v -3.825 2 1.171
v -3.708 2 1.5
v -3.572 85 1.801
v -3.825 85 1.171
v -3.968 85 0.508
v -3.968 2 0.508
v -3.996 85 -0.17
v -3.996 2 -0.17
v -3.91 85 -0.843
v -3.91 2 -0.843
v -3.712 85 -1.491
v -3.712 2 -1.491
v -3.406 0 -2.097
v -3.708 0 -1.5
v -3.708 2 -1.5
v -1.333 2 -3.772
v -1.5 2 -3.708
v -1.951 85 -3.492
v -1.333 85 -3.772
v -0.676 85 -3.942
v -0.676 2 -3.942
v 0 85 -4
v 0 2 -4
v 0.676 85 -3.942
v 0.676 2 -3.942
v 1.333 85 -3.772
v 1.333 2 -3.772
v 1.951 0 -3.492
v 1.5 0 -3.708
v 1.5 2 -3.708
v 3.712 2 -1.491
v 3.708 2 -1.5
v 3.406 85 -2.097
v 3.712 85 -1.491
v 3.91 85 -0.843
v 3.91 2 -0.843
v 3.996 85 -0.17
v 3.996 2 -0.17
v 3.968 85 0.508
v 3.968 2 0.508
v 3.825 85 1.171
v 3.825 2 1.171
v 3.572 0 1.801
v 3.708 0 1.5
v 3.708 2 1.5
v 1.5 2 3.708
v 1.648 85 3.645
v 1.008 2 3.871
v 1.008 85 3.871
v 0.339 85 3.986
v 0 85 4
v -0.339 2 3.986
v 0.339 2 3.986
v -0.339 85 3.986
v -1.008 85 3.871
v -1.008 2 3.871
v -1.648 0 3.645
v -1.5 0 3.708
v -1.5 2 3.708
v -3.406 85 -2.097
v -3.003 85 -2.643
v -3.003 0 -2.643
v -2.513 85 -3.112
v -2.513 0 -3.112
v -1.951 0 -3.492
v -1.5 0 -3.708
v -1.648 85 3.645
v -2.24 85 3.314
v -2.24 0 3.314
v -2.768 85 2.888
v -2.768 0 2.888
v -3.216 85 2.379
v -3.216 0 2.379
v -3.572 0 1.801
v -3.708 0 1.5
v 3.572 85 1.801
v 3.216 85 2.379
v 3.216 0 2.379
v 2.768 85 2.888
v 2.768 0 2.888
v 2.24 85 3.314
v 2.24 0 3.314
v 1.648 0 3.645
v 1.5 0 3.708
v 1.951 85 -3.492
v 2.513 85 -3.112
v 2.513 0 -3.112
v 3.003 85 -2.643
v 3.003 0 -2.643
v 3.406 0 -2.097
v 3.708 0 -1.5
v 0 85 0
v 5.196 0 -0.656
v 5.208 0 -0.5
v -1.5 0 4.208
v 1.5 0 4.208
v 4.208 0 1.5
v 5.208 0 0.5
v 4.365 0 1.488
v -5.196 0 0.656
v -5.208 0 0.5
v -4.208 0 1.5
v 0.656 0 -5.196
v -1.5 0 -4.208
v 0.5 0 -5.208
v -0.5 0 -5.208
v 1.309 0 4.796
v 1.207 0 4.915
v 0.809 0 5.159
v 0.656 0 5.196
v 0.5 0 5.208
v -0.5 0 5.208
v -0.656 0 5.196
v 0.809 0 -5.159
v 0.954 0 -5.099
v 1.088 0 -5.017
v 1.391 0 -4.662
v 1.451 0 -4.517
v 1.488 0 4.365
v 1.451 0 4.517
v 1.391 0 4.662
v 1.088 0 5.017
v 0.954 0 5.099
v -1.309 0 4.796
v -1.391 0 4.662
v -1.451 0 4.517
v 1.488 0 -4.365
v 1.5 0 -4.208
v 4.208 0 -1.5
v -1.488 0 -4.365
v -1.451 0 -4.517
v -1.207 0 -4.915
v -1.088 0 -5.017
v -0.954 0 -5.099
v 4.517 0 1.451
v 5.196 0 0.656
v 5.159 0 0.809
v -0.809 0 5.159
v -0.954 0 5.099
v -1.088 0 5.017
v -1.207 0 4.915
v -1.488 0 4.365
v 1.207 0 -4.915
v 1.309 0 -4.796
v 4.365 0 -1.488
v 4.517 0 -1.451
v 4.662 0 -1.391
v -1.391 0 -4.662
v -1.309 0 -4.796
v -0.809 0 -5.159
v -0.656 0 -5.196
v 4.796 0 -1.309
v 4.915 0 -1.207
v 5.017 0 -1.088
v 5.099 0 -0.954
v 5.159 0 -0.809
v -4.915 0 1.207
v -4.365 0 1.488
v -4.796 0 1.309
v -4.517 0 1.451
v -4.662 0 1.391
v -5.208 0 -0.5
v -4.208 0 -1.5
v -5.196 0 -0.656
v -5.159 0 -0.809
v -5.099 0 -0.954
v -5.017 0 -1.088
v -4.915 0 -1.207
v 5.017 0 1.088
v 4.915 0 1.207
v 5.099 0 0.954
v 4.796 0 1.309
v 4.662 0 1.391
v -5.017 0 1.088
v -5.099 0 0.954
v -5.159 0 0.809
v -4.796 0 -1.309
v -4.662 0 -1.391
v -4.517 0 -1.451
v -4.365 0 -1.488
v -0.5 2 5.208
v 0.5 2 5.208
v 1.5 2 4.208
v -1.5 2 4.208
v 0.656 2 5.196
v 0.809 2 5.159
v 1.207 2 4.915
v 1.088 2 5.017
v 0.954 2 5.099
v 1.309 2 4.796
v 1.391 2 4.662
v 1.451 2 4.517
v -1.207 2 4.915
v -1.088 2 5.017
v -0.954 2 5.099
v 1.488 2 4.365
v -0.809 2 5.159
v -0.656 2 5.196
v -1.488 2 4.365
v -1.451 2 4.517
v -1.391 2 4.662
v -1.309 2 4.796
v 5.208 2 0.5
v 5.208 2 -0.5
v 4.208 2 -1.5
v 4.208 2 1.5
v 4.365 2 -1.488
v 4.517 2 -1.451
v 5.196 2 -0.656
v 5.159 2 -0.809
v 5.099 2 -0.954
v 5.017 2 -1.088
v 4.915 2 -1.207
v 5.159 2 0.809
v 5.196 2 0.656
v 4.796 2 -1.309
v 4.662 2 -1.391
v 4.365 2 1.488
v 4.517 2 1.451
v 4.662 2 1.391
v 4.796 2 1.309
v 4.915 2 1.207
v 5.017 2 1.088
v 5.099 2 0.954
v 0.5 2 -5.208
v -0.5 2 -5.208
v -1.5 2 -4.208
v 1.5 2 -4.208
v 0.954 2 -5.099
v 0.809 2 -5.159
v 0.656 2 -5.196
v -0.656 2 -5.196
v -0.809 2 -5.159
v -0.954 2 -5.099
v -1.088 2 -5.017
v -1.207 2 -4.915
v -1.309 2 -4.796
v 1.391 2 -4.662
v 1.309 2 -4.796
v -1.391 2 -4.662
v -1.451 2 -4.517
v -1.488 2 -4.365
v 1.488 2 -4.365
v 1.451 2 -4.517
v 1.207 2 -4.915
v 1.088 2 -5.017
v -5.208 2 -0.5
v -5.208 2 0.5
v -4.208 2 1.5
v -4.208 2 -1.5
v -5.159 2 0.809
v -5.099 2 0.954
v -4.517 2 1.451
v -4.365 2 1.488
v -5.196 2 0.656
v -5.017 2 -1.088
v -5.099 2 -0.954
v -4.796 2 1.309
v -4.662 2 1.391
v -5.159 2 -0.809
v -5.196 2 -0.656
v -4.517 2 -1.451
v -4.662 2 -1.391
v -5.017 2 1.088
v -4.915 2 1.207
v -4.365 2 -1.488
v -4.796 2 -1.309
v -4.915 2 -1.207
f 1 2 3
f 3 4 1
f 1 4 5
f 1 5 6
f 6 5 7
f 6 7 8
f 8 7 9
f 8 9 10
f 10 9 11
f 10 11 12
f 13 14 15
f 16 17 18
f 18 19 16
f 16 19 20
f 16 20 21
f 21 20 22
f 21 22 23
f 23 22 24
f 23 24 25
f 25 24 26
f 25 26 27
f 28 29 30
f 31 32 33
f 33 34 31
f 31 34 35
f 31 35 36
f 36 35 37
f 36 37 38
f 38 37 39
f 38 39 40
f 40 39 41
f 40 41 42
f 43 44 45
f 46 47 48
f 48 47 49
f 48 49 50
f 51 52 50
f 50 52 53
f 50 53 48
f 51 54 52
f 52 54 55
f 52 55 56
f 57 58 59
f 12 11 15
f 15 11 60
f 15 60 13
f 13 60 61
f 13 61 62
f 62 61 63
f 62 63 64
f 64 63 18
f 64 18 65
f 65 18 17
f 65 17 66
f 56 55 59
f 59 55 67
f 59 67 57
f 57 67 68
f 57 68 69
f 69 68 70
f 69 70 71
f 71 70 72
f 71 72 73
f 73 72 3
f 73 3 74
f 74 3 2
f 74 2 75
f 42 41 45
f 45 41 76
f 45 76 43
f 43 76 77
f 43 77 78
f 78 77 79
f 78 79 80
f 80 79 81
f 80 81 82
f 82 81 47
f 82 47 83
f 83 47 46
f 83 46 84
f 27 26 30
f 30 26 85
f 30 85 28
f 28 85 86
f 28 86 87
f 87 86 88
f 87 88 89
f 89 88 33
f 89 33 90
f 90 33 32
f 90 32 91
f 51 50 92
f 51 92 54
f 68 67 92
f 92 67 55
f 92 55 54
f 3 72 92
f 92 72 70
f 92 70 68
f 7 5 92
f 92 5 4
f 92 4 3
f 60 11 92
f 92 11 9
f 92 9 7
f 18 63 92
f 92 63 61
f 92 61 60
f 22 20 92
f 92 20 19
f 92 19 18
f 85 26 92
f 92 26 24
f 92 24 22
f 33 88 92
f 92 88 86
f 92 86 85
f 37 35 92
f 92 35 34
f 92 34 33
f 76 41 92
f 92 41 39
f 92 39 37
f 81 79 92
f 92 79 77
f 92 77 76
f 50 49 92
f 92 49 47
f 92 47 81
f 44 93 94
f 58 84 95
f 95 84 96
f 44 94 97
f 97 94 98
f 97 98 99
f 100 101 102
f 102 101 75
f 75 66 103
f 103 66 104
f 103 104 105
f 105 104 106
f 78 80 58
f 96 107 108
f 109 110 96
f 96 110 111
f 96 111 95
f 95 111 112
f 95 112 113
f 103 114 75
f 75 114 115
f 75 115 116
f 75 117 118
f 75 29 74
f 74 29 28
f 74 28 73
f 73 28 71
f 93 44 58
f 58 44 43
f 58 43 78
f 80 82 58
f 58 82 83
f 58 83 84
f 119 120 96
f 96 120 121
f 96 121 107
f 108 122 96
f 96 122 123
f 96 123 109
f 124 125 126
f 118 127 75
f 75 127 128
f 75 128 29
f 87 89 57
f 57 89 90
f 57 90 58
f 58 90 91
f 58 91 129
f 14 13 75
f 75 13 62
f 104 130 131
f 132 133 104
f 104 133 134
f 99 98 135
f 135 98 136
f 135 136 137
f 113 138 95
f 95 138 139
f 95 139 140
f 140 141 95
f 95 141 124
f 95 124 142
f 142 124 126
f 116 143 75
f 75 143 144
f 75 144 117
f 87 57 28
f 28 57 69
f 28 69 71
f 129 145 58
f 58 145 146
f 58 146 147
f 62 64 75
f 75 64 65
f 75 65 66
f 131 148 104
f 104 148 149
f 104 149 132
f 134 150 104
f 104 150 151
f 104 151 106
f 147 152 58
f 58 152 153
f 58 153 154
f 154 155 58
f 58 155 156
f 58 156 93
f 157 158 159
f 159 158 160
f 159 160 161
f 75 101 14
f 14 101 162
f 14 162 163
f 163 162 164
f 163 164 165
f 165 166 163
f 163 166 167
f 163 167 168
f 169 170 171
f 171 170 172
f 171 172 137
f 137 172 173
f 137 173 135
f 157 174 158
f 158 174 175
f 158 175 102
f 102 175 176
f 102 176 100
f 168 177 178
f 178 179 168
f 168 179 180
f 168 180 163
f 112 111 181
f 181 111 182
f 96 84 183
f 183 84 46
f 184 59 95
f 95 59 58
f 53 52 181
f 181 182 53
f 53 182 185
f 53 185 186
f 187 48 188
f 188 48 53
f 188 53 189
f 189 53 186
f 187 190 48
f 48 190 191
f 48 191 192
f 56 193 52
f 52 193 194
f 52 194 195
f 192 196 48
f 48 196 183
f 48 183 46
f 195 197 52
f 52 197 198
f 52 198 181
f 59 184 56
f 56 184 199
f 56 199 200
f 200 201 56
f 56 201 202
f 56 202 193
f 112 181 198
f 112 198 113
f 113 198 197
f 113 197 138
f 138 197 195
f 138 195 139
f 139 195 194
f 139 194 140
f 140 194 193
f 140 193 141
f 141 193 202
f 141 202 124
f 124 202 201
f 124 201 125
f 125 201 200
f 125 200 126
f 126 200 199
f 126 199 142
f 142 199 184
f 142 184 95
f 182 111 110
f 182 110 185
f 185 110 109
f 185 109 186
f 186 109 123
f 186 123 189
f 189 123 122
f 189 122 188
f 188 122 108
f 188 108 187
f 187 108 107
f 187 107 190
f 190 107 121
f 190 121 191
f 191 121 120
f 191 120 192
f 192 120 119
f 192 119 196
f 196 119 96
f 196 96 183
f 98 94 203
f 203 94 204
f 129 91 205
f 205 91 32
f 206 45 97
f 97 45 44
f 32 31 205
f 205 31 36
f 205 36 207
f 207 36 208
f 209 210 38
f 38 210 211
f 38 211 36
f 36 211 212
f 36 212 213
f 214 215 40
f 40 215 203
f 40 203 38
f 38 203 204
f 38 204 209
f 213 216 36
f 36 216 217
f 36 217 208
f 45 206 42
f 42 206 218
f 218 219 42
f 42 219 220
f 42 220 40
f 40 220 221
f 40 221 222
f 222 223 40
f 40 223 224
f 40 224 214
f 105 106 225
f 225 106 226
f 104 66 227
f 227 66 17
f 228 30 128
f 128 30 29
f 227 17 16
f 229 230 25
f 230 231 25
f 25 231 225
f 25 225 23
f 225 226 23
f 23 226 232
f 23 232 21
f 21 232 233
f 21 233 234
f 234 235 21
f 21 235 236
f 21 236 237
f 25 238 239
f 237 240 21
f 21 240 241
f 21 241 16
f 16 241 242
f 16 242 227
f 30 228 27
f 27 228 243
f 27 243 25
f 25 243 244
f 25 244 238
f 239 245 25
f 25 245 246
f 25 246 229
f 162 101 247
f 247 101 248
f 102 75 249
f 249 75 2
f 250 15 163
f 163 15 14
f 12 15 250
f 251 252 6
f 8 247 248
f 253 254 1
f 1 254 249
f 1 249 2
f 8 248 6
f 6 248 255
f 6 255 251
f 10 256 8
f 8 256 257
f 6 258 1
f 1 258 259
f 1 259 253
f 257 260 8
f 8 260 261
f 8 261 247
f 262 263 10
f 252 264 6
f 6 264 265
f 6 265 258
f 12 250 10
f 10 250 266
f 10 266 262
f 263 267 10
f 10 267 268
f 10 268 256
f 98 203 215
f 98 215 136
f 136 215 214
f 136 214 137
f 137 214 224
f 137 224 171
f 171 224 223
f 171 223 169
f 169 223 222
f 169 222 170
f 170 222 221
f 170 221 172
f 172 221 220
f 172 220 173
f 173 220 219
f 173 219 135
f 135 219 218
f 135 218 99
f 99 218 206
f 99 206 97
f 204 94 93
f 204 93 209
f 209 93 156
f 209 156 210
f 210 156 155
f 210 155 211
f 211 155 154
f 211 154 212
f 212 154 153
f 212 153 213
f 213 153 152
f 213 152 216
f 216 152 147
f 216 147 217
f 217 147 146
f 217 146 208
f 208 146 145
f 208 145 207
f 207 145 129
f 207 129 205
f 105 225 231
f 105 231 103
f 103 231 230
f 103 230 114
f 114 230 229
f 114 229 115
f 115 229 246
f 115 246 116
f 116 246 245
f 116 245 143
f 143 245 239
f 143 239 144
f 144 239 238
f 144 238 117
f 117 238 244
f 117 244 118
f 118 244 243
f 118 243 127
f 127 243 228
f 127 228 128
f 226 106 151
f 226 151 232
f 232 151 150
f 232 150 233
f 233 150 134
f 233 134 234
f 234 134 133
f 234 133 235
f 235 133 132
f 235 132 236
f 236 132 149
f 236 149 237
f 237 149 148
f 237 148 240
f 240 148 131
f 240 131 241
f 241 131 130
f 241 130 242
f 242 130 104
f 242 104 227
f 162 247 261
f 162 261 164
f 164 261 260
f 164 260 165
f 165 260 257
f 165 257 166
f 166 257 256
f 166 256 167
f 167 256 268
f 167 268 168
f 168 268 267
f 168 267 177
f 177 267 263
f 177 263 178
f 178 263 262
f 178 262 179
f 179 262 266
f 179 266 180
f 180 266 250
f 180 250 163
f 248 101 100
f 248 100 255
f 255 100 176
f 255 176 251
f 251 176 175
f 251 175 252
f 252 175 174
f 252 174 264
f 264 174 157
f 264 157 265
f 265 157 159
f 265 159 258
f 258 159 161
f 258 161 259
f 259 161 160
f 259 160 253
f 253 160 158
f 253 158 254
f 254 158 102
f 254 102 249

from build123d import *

# Parameters (mm, degrees)
CROQUIS1_R              = 4
SALIENTE_EXTRUIR1_DEPTH = 85
SALIENTE_EXTRUIR2_DEPTH = 2
REDONDEO1_R             = 1
MATRIZC1_COUNT          = 4
REDONDEO1_OF_MATRIZC1_R = 1


with BuildPart() as part:
    # Croquis1 → Saliente-Extruir1 (new body)
    with BuildSketch(Plane(origin=(0, 0, 0), x_dir=(1, 0, 0), z_dir=(0, 1, 0))):
        with Locations(Location((0, 0, 0), (0, 0, 270))):
            Circle(CROQUIS1_R)
    extrude(amount=SALIENTE_EXTRUIR1_DEPTH)

    # Croquis2 → Saliente-Extruir2 (add)
    with BuildSketch(Plane.XZ):
        with BuildLine():
            Line((-1.5, 5.208099244), (1.5, 5.208099244))
            Line((1.5, 5.208099244), (1.5, 3.708099244))
            ThreePointArc((1.5, 3.708099244), (0, 4), (-1.5, 3.708099244))
            Line((-1.5, 3.708099244), (-1.5, 5.208099244))
        make_face()
    saliente_extruir2 = extrude(amount=-SALIENTE_EXTRUIR2_DEPTH)

    # Redondeo1
    redondeo1_edges = [part.edges().sort_by_distance(p)[0] for p in [
        (-1.5, 1, 5.208099244),
        (1.5, 1, 5.208099244),
    ]]
    fillet(redondeo1_edges, radius=REDONDEO1_R)

    # MatrizC1: Saliente-Extruir2 ×4 about axis
    matrizc1_axis = Axis((0, 0, 0), (0, 1, 0))
    for i in range(1, MATRIZC1_COUNT):
        add(saliente_extruir2.rotate(matrizc1_axis, i * 360 / MATRIZC1_COUNT))

    # Redondeo1 of MatrizC1
    redondeo1_of_matrizc1_edges = [part.edges().sort_by_distance(p)[0] for p in [
        (5.208099244, 1, 1.5),
        (5.208099244, 1, -1.5),
        (1.5, 1, -5.208099244),
        (-1.5, 1, -5.208099244),
        (-5.208099244, 1, -1.5),
        (-5.208099244, 1, 1.5),
    ]]
    fillet(redondeo1_of_matrizc1_edges, radius=REDONDEO1_OF_MATRIZC1_R)


solid = part.part
